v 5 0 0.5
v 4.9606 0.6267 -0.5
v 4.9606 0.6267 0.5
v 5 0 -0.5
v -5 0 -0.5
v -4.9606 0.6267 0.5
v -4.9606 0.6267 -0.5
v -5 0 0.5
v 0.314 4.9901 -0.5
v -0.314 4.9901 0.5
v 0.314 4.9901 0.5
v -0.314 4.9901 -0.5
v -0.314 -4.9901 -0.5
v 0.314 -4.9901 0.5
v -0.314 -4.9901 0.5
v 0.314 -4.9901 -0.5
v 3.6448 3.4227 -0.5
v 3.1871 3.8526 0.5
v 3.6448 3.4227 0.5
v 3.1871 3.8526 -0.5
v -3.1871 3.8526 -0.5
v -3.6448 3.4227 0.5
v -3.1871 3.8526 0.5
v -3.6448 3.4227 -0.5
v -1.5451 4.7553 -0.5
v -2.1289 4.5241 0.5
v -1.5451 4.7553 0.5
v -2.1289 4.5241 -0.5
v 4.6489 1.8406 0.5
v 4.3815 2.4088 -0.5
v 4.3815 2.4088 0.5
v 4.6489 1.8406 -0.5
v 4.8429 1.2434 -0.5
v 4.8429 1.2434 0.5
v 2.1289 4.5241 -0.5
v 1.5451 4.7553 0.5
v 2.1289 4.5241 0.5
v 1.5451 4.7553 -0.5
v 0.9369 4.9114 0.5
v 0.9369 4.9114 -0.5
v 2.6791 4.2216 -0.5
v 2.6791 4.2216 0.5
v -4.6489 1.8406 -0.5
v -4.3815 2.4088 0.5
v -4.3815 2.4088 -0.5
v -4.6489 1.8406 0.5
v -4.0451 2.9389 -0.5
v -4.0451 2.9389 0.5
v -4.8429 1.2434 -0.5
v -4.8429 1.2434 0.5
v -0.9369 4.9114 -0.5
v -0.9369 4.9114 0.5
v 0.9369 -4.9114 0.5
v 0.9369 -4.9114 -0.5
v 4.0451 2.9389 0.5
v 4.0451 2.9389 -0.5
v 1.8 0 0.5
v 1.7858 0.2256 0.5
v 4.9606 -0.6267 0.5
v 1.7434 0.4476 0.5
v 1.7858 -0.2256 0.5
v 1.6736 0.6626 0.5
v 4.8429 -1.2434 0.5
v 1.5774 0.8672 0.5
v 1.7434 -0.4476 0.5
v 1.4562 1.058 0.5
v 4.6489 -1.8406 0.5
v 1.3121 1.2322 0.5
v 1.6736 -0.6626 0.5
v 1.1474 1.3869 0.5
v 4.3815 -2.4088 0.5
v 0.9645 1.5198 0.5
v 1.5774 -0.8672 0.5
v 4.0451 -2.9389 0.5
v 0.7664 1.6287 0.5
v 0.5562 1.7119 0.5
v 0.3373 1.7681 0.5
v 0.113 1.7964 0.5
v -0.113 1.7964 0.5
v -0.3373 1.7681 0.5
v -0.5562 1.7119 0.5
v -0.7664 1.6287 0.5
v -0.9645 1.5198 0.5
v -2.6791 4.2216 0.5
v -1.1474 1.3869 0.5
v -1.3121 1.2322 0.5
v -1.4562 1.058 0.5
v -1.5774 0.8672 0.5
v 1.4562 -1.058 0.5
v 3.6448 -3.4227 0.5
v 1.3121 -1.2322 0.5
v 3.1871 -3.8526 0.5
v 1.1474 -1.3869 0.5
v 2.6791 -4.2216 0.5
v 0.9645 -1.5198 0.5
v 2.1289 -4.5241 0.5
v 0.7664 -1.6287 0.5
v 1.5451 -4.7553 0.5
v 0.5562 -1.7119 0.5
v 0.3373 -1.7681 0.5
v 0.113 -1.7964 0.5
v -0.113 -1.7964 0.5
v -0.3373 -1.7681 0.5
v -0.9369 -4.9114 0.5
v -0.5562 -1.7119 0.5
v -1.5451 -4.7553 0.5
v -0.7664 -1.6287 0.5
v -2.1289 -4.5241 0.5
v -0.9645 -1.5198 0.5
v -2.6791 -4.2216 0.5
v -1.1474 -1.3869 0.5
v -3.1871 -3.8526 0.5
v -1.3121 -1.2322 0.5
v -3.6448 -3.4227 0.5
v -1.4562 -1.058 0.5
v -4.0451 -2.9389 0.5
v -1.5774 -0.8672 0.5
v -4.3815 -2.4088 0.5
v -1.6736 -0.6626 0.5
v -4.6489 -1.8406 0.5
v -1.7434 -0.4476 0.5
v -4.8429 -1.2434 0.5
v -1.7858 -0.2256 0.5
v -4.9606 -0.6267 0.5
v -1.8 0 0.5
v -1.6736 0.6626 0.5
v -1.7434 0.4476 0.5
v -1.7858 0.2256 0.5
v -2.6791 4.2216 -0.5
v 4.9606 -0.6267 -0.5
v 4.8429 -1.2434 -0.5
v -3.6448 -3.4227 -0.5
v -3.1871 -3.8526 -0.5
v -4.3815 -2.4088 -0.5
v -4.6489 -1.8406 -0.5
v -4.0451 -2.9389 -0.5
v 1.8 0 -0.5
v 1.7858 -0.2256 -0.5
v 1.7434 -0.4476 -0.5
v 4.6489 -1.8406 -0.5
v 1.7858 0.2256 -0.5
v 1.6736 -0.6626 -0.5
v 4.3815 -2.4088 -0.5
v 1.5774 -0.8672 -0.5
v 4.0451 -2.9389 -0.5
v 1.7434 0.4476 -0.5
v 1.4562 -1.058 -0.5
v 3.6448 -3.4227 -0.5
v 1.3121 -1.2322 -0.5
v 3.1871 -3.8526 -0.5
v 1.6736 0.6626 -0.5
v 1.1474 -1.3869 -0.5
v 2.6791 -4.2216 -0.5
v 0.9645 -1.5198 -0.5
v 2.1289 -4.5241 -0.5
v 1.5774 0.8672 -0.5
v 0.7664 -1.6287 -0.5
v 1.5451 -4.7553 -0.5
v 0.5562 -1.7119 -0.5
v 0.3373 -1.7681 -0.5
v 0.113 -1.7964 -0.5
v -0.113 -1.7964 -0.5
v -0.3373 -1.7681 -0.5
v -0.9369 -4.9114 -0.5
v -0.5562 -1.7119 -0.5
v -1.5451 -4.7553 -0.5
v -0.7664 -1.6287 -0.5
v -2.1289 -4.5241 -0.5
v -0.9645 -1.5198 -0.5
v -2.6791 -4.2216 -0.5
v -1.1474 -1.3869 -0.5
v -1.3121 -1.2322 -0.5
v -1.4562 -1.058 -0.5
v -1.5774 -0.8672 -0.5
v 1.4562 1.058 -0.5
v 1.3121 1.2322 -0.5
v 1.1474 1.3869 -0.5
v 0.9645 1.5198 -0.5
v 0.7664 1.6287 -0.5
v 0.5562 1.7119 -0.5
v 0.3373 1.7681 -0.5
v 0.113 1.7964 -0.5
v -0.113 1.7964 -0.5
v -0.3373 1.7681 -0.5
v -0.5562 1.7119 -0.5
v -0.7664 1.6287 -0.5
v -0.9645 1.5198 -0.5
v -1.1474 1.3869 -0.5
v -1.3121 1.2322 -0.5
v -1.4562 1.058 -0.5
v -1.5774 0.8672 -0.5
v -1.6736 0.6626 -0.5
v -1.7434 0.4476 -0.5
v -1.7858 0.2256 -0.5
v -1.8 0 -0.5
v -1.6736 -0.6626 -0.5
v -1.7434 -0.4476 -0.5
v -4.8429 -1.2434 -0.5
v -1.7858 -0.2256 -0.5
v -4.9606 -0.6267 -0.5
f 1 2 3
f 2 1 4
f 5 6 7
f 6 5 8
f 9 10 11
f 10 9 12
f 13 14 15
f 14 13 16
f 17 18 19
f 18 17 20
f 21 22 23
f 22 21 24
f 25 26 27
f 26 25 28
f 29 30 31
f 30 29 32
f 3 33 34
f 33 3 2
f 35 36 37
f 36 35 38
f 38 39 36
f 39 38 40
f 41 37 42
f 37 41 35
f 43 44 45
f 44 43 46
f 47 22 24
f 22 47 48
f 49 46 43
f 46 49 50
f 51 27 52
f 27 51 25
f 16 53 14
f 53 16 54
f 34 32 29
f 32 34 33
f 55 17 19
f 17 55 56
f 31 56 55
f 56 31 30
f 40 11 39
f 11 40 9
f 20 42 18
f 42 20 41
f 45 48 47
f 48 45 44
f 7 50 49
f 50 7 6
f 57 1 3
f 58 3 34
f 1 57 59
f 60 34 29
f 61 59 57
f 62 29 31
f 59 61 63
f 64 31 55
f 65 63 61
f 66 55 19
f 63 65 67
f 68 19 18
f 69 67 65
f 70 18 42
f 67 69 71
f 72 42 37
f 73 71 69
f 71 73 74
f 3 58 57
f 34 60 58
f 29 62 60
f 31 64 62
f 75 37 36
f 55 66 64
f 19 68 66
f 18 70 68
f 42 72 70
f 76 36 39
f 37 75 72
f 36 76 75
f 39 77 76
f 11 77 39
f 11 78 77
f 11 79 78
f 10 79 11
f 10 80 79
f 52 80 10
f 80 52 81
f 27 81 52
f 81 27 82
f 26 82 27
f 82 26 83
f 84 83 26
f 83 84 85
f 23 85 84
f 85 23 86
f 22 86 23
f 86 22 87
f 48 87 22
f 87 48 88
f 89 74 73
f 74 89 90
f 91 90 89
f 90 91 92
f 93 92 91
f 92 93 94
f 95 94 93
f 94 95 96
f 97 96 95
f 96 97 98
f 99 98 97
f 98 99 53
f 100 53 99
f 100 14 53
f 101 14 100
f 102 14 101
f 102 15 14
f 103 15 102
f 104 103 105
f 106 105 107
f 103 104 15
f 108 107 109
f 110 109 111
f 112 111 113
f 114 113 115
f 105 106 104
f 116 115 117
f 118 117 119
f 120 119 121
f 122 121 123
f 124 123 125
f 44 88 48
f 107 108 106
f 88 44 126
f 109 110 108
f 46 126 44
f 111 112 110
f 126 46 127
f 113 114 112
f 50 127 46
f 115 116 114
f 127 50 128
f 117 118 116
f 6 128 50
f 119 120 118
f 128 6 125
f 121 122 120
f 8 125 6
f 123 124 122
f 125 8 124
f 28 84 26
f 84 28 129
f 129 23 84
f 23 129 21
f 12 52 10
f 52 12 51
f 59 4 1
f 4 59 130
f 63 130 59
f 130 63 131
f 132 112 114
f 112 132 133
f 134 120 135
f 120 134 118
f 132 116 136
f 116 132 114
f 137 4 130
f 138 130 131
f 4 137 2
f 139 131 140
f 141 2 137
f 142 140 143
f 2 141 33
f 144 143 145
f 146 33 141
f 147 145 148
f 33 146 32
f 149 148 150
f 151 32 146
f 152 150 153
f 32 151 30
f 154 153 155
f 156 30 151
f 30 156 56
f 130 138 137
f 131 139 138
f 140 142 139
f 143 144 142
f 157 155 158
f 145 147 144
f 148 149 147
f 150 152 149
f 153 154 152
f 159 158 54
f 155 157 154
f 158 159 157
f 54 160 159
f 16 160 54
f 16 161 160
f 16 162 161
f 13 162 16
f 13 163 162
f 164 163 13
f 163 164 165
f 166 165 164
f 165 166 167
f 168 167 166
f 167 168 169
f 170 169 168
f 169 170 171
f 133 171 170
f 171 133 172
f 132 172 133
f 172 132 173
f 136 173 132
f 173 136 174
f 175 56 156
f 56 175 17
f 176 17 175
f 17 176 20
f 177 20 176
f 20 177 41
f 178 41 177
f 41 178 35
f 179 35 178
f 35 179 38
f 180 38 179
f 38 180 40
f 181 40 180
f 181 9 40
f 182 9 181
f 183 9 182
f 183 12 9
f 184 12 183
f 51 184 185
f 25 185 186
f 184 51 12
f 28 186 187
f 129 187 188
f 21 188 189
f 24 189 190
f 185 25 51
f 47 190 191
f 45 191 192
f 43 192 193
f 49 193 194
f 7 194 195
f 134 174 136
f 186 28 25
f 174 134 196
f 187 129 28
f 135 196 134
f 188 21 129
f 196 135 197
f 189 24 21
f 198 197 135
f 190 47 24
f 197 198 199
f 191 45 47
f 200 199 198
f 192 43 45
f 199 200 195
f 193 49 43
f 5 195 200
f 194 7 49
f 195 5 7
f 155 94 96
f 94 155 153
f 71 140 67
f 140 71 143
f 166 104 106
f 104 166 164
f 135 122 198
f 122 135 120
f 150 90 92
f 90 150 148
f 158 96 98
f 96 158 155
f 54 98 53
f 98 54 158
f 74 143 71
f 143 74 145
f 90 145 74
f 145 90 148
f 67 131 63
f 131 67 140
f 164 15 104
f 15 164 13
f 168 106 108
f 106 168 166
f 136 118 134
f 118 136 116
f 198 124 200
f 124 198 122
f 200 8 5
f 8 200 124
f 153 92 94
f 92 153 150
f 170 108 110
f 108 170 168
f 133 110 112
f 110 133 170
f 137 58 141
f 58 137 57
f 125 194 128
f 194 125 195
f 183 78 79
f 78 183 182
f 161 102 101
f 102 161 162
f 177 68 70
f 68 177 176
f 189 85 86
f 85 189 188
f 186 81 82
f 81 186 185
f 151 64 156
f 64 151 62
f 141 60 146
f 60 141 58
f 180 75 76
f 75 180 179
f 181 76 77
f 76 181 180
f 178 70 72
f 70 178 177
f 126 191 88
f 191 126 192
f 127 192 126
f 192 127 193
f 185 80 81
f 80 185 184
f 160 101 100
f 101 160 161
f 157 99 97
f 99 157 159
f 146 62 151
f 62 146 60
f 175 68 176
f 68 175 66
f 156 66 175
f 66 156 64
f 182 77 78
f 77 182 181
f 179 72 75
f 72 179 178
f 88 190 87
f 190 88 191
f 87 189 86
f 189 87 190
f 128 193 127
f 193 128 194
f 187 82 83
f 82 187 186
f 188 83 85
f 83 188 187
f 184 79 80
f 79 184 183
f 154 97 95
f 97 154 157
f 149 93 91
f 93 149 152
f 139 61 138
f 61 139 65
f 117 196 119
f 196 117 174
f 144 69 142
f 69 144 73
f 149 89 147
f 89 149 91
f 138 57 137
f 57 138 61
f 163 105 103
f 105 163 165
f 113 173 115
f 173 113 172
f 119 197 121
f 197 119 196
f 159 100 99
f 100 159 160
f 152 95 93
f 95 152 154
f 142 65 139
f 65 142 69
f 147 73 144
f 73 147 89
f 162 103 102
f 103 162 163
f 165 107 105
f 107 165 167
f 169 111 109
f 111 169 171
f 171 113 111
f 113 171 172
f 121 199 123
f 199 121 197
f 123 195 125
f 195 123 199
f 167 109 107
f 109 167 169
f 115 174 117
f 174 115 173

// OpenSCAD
$fn = 50;


difference() {
	union() {
		translate(v = [0, 0, -0.5000000000]) {
			cylinder(h = 1, r = 5.0000000000);
		}
	}
	union() {
		translate(v = [0, 0, -100.0000000000]) {
			cylinder(h = 200, r = 1.8000000000);
		}
	}
}
